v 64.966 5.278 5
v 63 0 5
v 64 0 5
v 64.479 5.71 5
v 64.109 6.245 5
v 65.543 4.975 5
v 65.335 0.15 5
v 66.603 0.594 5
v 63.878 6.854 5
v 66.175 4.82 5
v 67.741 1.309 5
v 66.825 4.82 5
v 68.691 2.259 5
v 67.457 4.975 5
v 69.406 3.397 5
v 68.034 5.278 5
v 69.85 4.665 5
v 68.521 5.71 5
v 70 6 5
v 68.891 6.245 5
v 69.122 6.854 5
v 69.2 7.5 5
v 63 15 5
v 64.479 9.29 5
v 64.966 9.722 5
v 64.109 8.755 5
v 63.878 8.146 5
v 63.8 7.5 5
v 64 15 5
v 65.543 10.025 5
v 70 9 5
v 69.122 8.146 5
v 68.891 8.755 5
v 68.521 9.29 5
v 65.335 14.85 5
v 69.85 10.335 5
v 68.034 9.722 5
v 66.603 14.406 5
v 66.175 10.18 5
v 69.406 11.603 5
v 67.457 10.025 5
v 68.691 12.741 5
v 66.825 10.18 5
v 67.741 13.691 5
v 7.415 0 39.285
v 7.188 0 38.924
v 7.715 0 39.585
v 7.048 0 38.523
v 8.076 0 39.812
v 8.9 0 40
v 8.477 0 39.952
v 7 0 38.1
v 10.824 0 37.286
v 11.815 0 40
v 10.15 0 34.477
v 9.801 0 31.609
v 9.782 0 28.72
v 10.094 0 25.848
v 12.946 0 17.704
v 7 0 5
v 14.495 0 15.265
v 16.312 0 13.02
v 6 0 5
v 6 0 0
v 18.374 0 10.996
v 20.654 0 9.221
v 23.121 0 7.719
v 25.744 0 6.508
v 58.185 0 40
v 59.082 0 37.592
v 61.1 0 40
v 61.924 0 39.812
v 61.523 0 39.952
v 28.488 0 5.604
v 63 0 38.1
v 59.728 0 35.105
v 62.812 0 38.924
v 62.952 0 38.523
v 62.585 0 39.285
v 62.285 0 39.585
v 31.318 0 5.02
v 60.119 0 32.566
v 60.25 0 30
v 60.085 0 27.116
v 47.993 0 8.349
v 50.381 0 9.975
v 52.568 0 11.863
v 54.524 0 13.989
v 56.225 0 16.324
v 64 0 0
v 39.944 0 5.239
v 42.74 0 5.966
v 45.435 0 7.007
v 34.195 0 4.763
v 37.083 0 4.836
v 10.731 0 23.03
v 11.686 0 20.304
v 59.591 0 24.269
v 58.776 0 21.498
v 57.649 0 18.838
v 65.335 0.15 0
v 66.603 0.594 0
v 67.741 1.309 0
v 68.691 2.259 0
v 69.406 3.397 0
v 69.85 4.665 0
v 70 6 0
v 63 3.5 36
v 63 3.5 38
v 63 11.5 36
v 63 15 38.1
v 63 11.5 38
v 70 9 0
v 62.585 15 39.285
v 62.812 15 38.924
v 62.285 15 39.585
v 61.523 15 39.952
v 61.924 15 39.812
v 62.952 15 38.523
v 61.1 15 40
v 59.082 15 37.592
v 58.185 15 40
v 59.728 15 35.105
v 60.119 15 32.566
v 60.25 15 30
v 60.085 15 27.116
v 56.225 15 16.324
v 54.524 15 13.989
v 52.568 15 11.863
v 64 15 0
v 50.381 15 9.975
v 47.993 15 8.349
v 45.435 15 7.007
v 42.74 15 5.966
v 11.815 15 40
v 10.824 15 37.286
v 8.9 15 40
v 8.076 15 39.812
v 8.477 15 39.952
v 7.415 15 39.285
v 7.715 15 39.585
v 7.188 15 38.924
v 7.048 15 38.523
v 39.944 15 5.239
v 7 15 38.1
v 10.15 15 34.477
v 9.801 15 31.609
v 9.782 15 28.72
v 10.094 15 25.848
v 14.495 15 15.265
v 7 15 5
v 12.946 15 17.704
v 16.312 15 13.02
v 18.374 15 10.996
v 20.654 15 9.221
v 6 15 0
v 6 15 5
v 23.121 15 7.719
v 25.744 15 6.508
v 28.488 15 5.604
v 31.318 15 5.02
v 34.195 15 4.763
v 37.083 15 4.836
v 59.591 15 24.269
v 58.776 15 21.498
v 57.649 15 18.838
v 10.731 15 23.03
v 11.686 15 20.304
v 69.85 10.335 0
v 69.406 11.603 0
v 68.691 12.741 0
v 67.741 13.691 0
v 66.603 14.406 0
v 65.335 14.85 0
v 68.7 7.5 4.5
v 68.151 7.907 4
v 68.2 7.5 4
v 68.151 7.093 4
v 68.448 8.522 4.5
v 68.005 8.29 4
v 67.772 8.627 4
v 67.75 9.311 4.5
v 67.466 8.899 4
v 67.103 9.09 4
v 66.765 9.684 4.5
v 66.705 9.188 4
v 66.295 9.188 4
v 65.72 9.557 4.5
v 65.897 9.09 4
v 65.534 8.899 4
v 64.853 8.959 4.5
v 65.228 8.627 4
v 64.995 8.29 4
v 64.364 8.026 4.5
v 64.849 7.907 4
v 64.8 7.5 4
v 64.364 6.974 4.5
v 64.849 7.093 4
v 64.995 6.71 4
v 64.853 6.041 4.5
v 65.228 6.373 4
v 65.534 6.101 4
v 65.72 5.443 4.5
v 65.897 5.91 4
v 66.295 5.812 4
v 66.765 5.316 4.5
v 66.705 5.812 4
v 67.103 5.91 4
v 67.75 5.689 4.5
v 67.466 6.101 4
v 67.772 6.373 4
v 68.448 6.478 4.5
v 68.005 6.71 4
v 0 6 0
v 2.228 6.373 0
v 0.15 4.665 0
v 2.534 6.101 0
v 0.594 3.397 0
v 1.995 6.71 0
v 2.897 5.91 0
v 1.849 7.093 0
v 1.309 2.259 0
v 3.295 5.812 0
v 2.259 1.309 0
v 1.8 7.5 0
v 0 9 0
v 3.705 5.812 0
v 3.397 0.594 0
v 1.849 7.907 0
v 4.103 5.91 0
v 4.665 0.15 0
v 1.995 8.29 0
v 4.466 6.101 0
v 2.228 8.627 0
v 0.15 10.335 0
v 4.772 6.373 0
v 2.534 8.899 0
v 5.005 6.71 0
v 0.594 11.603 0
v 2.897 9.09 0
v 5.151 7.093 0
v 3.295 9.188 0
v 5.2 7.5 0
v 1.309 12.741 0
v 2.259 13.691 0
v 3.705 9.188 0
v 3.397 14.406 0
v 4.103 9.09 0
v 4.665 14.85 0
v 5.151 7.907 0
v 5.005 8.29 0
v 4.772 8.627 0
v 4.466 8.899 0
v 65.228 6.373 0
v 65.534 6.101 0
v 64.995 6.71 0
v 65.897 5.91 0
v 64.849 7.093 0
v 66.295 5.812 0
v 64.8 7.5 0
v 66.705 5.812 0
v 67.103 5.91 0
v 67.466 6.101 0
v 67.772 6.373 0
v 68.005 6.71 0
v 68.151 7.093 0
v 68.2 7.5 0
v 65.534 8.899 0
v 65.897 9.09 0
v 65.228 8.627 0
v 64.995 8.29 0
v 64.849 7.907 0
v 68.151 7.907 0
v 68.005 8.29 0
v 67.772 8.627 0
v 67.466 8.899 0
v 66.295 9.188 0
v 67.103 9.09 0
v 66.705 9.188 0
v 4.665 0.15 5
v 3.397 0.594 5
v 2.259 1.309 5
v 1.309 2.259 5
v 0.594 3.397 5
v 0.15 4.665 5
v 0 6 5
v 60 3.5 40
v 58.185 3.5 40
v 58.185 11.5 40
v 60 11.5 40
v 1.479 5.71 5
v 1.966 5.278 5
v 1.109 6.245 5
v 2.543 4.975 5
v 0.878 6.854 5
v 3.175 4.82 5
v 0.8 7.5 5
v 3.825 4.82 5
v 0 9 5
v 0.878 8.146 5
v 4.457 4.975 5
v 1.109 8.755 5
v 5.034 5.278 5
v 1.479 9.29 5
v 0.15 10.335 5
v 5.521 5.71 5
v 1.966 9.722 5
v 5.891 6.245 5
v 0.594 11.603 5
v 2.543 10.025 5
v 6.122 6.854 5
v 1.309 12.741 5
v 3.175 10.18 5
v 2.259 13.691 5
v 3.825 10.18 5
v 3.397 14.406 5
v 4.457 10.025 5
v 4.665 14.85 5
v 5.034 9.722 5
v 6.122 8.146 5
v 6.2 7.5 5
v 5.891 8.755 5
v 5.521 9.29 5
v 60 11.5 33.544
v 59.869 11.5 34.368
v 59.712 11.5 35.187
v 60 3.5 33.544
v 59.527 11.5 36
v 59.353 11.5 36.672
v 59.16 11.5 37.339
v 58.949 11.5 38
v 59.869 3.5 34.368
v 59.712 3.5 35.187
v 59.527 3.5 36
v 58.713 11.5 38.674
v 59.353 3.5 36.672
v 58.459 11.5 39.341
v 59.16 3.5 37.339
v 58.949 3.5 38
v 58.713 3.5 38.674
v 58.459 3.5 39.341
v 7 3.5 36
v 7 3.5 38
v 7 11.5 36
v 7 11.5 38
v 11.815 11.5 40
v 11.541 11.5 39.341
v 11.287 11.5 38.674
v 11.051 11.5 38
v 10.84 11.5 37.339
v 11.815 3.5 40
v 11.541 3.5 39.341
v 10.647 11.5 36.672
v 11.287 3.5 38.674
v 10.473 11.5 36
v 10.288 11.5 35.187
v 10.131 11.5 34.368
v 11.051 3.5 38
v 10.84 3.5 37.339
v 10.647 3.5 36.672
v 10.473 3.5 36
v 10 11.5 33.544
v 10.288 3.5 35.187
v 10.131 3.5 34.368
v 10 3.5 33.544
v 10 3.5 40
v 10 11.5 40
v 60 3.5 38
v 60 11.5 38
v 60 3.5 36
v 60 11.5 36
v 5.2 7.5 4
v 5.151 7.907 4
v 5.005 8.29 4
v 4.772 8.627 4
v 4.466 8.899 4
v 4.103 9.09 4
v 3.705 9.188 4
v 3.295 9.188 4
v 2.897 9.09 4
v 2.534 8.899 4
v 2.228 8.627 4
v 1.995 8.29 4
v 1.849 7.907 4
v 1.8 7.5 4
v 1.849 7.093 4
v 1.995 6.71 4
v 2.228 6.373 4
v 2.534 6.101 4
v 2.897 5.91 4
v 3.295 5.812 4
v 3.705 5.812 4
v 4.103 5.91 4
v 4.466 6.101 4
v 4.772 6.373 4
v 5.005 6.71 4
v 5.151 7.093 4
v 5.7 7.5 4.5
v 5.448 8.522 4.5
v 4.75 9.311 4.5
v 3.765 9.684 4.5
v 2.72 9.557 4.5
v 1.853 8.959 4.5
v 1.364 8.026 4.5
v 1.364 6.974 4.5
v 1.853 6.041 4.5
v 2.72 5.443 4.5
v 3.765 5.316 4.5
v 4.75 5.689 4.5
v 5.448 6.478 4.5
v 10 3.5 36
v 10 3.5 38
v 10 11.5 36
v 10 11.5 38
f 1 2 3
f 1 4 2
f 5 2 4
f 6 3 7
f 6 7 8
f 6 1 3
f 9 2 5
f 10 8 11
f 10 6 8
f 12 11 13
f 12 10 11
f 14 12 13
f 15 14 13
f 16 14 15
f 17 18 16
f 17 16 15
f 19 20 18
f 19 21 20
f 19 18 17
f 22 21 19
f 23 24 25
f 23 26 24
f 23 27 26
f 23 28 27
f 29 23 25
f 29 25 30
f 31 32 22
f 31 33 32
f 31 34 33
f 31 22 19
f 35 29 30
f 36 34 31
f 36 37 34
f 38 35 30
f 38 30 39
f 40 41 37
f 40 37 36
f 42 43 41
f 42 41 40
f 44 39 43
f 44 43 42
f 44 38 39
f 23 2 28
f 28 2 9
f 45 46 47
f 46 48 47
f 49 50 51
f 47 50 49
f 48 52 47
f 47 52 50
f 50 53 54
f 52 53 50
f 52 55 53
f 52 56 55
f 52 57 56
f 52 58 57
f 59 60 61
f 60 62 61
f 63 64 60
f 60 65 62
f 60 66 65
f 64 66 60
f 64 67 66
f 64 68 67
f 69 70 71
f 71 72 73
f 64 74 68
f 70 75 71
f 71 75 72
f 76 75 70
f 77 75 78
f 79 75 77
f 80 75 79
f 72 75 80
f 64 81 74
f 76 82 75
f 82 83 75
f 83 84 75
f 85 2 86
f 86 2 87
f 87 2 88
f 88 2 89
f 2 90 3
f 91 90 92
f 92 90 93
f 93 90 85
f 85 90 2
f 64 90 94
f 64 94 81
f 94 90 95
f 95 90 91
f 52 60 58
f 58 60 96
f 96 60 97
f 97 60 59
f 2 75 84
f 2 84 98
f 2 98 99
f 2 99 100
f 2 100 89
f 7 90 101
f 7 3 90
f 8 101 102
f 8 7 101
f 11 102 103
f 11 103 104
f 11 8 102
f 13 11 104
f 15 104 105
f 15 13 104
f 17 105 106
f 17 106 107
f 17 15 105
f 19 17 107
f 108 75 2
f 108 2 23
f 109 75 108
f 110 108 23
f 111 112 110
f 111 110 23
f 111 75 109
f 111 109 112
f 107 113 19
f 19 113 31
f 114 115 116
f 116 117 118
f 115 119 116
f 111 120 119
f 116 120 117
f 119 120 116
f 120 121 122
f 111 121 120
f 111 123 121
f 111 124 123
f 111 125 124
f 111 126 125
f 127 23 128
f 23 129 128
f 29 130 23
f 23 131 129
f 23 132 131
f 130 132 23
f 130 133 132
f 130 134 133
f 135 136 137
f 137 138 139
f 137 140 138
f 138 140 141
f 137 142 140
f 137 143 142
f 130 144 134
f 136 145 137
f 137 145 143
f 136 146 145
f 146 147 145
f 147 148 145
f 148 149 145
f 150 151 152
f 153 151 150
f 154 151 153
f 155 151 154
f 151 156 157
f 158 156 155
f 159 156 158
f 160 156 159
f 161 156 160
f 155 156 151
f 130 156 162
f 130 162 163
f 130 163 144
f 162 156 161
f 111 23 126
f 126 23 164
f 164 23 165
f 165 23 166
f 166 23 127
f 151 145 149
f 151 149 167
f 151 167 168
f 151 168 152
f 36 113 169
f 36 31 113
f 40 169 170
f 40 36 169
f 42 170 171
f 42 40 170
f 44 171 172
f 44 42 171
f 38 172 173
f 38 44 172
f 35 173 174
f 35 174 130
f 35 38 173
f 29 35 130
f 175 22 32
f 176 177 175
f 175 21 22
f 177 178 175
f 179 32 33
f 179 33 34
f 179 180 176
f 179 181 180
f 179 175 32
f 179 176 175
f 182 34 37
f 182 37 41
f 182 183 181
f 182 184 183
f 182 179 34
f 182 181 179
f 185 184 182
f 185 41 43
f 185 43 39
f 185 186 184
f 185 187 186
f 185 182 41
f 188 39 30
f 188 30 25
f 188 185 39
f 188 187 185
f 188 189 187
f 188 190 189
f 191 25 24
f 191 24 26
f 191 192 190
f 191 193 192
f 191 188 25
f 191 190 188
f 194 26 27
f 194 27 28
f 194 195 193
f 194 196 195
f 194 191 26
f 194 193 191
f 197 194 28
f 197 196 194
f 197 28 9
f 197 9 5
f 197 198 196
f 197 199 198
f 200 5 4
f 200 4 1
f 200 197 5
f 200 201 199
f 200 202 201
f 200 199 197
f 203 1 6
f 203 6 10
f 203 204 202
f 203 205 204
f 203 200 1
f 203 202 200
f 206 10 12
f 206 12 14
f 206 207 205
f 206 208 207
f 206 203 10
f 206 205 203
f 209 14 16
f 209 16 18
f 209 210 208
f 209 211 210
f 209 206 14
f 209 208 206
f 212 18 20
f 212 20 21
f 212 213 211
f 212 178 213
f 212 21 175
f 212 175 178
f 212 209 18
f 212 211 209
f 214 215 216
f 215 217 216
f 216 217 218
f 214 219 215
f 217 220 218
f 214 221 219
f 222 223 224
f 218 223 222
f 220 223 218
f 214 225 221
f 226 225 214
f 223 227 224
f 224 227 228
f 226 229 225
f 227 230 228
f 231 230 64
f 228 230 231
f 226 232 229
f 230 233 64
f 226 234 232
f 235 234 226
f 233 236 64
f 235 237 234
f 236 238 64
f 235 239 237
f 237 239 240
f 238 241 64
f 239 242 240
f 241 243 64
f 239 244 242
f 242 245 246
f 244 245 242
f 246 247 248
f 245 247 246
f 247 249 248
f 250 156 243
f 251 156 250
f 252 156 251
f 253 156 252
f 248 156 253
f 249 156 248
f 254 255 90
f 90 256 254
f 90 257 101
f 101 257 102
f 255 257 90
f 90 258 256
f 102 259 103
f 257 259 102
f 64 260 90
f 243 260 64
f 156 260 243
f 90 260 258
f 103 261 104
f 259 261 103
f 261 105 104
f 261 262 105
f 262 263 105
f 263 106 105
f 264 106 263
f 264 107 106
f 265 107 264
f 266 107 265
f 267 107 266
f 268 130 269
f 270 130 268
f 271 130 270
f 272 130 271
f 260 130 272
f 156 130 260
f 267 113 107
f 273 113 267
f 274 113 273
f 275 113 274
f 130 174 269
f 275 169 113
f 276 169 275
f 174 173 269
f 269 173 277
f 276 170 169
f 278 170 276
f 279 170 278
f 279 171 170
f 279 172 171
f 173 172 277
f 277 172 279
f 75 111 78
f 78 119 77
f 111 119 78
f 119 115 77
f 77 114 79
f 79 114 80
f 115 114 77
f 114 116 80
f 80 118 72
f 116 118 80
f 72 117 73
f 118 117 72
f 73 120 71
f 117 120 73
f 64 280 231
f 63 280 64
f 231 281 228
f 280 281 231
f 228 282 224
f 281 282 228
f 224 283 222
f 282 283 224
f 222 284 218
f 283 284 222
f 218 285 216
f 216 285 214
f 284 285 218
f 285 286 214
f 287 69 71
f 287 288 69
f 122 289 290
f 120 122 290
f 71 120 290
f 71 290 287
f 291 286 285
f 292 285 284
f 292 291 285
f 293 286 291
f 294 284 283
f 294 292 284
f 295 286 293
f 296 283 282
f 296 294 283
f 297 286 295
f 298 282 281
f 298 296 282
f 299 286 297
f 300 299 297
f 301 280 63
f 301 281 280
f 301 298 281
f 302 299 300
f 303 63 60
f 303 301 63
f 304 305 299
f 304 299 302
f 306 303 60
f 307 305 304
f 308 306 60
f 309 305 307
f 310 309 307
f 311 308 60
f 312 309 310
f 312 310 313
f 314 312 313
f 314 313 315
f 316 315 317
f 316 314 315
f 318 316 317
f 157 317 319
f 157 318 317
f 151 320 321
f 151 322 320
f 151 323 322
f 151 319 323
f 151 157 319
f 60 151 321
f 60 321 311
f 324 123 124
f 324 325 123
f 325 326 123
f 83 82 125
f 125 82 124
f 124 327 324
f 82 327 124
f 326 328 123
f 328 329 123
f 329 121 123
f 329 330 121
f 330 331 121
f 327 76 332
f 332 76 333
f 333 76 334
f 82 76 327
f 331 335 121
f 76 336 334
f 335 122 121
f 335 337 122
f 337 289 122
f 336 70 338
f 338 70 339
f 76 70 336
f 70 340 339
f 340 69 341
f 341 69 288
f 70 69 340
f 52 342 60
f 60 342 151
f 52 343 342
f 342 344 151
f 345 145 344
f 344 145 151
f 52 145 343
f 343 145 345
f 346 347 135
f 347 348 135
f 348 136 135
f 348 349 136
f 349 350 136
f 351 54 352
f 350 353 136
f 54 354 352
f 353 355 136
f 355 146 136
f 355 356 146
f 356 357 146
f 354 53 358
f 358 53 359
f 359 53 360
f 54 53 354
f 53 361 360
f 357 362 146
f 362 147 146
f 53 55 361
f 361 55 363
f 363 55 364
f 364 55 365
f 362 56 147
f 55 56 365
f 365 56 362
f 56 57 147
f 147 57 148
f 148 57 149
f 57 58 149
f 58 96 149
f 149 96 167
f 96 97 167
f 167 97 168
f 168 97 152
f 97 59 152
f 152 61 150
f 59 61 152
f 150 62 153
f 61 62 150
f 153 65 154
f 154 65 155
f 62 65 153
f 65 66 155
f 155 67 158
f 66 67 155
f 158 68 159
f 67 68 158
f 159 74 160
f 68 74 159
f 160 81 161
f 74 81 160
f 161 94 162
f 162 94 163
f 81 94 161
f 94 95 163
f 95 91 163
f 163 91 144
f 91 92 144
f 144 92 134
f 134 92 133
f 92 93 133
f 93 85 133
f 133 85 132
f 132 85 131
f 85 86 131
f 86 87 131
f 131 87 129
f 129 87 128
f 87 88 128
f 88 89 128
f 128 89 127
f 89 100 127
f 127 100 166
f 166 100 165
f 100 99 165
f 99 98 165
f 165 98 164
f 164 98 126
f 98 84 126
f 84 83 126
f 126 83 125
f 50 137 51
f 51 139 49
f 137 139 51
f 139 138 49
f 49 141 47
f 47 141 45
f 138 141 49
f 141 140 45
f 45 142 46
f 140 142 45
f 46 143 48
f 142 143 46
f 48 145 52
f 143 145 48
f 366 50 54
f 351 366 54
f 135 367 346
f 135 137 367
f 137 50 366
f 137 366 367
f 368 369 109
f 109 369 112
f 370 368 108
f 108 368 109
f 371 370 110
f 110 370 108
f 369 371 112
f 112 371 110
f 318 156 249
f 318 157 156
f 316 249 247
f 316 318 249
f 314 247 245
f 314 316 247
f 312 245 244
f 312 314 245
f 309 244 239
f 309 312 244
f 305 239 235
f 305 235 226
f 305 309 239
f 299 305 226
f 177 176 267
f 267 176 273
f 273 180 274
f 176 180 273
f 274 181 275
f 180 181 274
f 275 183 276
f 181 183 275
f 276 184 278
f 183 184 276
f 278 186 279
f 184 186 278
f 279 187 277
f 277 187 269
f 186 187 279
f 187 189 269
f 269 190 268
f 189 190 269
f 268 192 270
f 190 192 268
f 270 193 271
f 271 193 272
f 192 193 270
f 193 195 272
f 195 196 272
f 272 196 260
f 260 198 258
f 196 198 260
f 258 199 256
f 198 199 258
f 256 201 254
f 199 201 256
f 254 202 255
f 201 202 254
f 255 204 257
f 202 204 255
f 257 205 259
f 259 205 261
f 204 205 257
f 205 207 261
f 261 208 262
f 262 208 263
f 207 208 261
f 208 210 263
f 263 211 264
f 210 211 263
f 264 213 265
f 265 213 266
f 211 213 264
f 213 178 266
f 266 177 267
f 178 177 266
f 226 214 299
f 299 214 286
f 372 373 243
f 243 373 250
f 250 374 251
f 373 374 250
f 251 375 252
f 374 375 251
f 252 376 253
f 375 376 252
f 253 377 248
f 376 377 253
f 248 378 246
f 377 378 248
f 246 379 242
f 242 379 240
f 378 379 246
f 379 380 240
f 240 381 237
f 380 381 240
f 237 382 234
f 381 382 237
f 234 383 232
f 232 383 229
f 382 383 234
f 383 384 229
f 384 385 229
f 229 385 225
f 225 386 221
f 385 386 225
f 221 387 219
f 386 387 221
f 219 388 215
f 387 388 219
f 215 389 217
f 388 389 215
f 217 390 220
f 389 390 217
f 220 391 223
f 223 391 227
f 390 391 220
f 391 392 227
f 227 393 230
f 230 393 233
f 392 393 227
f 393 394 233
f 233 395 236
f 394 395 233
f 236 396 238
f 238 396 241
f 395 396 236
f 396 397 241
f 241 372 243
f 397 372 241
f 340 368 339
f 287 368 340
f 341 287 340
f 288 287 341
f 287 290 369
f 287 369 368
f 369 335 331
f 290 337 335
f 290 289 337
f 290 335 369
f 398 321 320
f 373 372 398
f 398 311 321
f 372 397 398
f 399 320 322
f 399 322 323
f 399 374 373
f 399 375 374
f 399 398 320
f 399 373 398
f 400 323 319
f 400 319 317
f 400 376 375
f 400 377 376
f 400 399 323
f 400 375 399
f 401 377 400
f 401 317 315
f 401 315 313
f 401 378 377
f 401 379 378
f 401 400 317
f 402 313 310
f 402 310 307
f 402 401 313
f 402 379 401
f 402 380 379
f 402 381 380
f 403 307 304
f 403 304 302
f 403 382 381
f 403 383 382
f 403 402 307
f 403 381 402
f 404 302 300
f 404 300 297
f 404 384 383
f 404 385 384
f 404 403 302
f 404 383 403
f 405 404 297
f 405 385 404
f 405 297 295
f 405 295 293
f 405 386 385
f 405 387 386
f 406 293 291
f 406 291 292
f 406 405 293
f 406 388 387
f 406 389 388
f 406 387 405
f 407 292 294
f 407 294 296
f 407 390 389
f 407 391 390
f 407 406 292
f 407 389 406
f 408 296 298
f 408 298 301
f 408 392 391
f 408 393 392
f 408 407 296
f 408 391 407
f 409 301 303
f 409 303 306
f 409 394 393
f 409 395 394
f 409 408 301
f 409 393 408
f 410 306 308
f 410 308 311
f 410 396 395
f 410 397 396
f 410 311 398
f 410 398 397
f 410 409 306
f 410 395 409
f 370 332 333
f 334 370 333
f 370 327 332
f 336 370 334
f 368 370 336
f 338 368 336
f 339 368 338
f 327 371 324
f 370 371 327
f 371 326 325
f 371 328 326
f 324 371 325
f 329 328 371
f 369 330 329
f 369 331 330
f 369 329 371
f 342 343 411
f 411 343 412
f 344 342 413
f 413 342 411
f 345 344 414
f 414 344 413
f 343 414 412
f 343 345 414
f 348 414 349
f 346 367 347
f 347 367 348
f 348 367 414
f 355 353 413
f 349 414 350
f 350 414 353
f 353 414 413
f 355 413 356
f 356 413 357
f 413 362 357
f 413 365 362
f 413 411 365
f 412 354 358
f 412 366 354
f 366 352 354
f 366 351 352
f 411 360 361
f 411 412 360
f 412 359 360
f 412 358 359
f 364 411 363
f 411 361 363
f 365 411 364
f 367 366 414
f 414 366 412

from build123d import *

# Parameters (mm, degrees)
SKETCH_W        = 70
SKETCH_H        = 15
PAD_DEPTH       = 40
SKETCH001_R     = 25.25
POCKET_DEPTH    = 15
SKETCH002_W     = 7
SKETCH002_H     = 15
POCKET001_DEPTH = 35
SKETCH003_R     = 1.7
POCKET002_DEPTH = 5
SKETCH004_W     = 2
SKETCH004_H     = 8
POCKET003_DEPTH = 11
SKETCH005_W     = 8
SKETCH005_H     = 2
POCKET004_DEPTH = 57
FILLET_R        = 1.9
CHAMFER_SIZE    = 1
FILLET001_R     = 6


with BuildPart() as part:
    # Sketch → Pad (new body)
    with BuildSketch(Plane.XY):
        with Locations((35, 7.5)):
            Rectangle(SKETCH_W, SKETCH_H)
    extrude(amount=PAD_DEPTH)

    # Sketch001 (on Face1 of Pad) → Pocket (cut)
    with BuildSketch(Plane.XZ):
        with Locations((35, 30)):
            Circle(SKETCH001_R)
    extrude(amount=-POCKET_DEPTH, mode=Mode.SUBTRACT)

    # Sketch002 (on Face7 of Pocket) → Pocket001 (cut)
    with BuildSketch(Plane.XY.offset(40)):
        with Locations((3.5, 7.5)):
            Rectangle(SKETCH002_W, SKETCH002_H)
        with Locations((66.5, 7.5)):
            Rectangle(SKETCH002_W, SKETCH002_H)
    extrude(amount=-POCKET001_DEPTH, mode=Mode.SUBTRACT)

    # Sketch003 (on Face11 of Pocket001) → Pocket002 (cut)
    with BuildSketch(Plane.XY.offset(5)):
        with Locations((3.5, 7.5)):
            Circle(SKETCH003_R)
        with Locations((66.5, 7.5)):
            Circle(SKETCH003_R)
    extrude(amount=-POCKET002_DEPTH, mode=Mode.SUBTRACT)

    # Sketch004 (on Face9 of Pocket002) → Pocket003 (cut)
    with BuildSketch(Plane.XY.offset(40)):
        with Locations((11, 7.5)):
            Rectangle(SKETCH004_W, SKETCH004_H)
        with Locations((59, 7.5)):
            Rectangle(SKETCH004_W, SKETCH004_H)
    extrude(amount=-POCKET003_DEPTH, mode=Mode.SUBTRACT)

    # Sketch005 (on Face10 of Pocket003) → Pocket004 (cut)
    with BuildSketch(Plane(origin=(7, 0, 0), x_dir=(0, -1, 0), z_dir=(-1, 0, 0))):
        with Locations((-7.5, 37)):
            Rectangle(SKETCH005_W, SKETCH005_H)
    extrude(amount=-POCKET004_DEPTH, mode=Mode.SUBTRACT)

    # Fillet
    fillet_edges = [part.edges().sort_by_distance(p)[0] for p in [
        (7, 7.5, 40),
        (63, 7.5, 40),
    ]]
    fillet(fillet_edges, radius=FILLET_R)

    # Chamfer
    chamfer_edges = [part.edges().sort_by_distance(p)[0] for p in [
        (1.8, 7.5, 5),
        (64.8, 7.5, 5),
    ]]
    chamfer(chamfer_edges, length=CHAMFER_SIZE)

    # Fillet001
    fillet001_edges = [part.edges().sort_by_distance(p)[0] for p in [
        (0, 0, 2.5),
        (0, 15, 2.5),
        (70, 0, 2.5),
        (70, 15, 2.5),
    ]]
    fillet(fillet001_edges, radius=FILLET001_R)


solid = part.part
